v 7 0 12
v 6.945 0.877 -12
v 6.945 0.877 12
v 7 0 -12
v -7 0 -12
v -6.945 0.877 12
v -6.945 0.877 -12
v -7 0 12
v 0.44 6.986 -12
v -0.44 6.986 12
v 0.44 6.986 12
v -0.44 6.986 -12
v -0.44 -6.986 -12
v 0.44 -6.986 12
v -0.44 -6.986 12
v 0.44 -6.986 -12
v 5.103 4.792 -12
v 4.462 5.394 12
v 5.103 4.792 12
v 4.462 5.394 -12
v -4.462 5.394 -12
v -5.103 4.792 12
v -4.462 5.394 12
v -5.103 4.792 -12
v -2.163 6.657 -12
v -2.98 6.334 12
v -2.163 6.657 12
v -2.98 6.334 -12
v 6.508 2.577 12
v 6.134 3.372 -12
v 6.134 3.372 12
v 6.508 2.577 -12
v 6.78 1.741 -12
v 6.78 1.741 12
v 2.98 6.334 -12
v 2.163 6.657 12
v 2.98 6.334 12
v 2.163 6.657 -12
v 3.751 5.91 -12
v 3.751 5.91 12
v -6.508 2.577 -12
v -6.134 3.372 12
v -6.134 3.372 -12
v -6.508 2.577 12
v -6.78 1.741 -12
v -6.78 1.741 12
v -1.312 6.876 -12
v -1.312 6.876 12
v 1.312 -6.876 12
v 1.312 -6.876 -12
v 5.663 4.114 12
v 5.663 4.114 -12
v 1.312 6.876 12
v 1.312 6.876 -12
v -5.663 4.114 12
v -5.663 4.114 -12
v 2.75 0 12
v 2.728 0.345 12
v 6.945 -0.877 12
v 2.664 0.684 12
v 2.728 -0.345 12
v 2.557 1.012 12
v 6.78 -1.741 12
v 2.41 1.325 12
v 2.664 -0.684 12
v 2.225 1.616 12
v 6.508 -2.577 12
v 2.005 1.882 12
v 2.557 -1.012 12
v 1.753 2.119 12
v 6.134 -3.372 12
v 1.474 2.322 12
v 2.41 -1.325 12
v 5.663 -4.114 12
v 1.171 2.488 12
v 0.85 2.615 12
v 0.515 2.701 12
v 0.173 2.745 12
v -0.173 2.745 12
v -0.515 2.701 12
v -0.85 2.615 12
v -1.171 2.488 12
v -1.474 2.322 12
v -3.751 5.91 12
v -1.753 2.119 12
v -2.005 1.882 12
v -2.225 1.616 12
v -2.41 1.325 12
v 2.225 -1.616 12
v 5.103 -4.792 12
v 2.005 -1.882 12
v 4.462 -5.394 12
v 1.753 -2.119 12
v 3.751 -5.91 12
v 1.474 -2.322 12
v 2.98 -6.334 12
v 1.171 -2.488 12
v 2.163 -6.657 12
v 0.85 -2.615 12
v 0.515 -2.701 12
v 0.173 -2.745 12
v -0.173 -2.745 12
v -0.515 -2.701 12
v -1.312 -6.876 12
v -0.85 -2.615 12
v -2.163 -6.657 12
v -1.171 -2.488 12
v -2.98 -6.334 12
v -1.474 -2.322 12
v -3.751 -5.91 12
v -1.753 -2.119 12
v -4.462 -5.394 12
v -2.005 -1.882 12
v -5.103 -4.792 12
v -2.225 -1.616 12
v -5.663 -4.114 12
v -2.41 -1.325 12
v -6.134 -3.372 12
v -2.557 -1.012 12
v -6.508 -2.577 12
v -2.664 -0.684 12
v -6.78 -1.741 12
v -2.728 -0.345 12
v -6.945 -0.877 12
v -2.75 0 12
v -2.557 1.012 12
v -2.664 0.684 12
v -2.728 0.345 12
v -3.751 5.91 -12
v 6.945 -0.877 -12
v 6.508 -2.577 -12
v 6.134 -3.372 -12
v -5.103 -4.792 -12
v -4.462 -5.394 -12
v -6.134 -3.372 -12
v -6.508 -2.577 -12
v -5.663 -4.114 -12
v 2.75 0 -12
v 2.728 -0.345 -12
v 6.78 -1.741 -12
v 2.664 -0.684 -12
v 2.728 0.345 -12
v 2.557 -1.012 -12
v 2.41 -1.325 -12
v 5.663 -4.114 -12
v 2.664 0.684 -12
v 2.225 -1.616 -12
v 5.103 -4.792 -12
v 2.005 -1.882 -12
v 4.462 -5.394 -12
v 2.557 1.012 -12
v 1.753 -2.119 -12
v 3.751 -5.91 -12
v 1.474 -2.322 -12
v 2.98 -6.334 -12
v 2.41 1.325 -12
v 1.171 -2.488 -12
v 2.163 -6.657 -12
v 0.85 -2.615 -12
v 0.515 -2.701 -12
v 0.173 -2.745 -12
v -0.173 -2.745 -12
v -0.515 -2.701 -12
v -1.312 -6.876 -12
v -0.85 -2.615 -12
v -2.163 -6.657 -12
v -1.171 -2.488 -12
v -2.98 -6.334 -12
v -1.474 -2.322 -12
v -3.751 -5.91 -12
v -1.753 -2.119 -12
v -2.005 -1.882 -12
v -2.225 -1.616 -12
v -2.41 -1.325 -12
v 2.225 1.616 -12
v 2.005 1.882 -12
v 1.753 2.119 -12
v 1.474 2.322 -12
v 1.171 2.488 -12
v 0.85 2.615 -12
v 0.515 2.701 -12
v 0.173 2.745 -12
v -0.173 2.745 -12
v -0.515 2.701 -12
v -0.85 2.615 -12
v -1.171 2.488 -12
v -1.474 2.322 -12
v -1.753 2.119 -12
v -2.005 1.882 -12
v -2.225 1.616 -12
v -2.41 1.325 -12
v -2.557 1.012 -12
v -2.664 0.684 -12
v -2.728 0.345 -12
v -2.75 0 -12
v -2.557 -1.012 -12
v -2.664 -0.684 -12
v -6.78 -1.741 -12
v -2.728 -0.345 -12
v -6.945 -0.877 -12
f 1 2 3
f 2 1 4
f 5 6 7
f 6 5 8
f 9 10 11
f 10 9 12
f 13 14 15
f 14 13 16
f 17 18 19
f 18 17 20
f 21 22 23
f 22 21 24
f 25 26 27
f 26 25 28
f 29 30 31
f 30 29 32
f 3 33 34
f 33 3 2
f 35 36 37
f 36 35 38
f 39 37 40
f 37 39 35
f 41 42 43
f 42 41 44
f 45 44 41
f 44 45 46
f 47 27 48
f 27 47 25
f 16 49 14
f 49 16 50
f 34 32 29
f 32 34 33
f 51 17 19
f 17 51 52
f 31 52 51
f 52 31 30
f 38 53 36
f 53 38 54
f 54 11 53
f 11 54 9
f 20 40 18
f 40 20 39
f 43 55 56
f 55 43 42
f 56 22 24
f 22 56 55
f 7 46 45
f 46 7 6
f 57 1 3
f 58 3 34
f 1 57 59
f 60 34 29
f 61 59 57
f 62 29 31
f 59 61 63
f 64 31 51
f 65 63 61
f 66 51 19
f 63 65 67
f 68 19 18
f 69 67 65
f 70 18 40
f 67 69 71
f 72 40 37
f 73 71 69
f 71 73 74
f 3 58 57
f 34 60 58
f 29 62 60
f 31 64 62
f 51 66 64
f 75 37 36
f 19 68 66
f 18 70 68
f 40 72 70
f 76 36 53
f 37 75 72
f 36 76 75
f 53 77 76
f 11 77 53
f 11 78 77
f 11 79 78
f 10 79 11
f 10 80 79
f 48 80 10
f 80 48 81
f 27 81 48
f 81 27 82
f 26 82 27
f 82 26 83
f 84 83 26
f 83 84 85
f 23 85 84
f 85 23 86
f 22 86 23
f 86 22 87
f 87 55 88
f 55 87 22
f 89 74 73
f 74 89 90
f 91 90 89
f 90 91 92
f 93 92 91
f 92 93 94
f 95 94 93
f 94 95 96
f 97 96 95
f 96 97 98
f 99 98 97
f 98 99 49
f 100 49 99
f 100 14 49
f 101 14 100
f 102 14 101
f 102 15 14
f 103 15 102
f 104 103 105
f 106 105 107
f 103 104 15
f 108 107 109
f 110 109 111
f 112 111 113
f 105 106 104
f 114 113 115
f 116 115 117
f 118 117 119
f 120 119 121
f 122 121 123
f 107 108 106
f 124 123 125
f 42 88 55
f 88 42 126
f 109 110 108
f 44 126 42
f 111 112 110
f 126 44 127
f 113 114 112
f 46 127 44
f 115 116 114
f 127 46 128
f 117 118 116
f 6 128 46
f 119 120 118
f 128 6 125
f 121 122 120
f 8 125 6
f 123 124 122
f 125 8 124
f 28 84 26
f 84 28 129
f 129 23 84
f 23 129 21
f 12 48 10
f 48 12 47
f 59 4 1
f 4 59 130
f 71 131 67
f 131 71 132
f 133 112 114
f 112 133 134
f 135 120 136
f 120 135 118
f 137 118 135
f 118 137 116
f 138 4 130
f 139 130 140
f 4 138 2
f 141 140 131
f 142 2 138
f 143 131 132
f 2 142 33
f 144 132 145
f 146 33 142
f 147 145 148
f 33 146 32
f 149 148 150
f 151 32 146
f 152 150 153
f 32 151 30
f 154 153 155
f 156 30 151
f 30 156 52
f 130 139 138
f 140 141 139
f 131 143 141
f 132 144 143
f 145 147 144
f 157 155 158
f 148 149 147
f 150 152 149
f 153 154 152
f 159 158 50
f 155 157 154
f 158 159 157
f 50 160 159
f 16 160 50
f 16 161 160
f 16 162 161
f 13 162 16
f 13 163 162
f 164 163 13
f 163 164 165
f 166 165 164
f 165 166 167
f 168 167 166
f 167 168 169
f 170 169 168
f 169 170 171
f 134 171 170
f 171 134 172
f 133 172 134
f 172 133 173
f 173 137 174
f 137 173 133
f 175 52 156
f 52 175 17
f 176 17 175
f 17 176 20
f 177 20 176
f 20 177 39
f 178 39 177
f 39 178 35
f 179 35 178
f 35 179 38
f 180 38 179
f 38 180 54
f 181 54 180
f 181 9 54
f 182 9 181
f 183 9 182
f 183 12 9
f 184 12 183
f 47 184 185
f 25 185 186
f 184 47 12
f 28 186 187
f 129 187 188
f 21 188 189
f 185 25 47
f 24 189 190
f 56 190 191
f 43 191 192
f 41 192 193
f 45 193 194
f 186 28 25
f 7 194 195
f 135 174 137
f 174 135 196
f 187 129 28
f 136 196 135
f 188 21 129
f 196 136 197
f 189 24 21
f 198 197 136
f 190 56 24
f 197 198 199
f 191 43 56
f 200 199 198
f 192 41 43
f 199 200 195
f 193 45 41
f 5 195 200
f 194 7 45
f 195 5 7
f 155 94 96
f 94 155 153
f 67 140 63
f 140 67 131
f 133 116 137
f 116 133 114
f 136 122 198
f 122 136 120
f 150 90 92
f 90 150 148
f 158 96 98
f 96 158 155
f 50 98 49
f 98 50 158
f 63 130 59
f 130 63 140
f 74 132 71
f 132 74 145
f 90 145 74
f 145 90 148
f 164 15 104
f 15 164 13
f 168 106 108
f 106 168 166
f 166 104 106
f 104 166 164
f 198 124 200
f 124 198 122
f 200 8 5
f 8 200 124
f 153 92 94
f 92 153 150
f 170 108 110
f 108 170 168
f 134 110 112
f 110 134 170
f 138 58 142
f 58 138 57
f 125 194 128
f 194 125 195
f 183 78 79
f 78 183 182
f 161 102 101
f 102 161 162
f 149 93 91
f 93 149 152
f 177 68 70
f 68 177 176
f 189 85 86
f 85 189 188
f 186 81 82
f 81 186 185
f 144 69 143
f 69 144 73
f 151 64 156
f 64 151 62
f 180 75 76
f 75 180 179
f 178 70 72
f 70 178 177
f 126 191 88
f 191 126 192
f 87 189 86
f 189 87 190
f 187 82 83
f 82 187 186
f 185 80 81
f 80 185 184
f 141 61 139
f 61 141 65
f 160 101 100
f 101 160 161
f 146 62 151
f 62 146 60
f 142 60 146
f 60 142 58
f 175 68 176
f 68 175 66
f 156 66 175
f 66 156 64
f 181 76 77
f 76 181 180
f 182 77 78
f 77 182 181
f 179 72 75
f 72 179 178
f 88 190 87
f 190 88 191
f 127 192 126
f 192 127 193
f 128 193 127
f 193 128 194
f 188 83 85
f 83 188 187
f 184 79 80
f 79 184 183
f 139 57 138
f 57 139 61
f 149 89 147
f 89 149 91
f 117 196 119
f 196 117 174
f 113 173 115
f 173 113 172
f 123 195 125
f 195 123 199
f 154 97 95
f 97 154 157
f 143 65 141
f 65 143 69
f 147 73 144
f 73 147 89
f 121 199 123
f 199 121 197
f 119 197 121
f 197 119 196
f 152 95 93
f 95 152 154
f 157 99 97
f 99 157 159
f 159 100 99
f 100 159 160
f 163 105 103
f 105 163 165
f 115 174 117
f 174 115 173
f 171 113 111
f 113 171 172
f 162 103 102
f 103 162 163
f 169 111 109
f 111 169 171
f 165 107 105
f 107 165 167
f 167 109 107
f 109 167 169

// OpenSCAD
$fn = 50;


difference() {
	union() {
		translate(v = [0, 0, -12.0000000000]) {
			cylinder(h = 24, r = 7.0000000000);
		}
	}
	union() {
		translate(v = [0, 0, -100.0000000000]) {
			cylinder(h = 200, r = 2.7500000000);
		}
	}
}
